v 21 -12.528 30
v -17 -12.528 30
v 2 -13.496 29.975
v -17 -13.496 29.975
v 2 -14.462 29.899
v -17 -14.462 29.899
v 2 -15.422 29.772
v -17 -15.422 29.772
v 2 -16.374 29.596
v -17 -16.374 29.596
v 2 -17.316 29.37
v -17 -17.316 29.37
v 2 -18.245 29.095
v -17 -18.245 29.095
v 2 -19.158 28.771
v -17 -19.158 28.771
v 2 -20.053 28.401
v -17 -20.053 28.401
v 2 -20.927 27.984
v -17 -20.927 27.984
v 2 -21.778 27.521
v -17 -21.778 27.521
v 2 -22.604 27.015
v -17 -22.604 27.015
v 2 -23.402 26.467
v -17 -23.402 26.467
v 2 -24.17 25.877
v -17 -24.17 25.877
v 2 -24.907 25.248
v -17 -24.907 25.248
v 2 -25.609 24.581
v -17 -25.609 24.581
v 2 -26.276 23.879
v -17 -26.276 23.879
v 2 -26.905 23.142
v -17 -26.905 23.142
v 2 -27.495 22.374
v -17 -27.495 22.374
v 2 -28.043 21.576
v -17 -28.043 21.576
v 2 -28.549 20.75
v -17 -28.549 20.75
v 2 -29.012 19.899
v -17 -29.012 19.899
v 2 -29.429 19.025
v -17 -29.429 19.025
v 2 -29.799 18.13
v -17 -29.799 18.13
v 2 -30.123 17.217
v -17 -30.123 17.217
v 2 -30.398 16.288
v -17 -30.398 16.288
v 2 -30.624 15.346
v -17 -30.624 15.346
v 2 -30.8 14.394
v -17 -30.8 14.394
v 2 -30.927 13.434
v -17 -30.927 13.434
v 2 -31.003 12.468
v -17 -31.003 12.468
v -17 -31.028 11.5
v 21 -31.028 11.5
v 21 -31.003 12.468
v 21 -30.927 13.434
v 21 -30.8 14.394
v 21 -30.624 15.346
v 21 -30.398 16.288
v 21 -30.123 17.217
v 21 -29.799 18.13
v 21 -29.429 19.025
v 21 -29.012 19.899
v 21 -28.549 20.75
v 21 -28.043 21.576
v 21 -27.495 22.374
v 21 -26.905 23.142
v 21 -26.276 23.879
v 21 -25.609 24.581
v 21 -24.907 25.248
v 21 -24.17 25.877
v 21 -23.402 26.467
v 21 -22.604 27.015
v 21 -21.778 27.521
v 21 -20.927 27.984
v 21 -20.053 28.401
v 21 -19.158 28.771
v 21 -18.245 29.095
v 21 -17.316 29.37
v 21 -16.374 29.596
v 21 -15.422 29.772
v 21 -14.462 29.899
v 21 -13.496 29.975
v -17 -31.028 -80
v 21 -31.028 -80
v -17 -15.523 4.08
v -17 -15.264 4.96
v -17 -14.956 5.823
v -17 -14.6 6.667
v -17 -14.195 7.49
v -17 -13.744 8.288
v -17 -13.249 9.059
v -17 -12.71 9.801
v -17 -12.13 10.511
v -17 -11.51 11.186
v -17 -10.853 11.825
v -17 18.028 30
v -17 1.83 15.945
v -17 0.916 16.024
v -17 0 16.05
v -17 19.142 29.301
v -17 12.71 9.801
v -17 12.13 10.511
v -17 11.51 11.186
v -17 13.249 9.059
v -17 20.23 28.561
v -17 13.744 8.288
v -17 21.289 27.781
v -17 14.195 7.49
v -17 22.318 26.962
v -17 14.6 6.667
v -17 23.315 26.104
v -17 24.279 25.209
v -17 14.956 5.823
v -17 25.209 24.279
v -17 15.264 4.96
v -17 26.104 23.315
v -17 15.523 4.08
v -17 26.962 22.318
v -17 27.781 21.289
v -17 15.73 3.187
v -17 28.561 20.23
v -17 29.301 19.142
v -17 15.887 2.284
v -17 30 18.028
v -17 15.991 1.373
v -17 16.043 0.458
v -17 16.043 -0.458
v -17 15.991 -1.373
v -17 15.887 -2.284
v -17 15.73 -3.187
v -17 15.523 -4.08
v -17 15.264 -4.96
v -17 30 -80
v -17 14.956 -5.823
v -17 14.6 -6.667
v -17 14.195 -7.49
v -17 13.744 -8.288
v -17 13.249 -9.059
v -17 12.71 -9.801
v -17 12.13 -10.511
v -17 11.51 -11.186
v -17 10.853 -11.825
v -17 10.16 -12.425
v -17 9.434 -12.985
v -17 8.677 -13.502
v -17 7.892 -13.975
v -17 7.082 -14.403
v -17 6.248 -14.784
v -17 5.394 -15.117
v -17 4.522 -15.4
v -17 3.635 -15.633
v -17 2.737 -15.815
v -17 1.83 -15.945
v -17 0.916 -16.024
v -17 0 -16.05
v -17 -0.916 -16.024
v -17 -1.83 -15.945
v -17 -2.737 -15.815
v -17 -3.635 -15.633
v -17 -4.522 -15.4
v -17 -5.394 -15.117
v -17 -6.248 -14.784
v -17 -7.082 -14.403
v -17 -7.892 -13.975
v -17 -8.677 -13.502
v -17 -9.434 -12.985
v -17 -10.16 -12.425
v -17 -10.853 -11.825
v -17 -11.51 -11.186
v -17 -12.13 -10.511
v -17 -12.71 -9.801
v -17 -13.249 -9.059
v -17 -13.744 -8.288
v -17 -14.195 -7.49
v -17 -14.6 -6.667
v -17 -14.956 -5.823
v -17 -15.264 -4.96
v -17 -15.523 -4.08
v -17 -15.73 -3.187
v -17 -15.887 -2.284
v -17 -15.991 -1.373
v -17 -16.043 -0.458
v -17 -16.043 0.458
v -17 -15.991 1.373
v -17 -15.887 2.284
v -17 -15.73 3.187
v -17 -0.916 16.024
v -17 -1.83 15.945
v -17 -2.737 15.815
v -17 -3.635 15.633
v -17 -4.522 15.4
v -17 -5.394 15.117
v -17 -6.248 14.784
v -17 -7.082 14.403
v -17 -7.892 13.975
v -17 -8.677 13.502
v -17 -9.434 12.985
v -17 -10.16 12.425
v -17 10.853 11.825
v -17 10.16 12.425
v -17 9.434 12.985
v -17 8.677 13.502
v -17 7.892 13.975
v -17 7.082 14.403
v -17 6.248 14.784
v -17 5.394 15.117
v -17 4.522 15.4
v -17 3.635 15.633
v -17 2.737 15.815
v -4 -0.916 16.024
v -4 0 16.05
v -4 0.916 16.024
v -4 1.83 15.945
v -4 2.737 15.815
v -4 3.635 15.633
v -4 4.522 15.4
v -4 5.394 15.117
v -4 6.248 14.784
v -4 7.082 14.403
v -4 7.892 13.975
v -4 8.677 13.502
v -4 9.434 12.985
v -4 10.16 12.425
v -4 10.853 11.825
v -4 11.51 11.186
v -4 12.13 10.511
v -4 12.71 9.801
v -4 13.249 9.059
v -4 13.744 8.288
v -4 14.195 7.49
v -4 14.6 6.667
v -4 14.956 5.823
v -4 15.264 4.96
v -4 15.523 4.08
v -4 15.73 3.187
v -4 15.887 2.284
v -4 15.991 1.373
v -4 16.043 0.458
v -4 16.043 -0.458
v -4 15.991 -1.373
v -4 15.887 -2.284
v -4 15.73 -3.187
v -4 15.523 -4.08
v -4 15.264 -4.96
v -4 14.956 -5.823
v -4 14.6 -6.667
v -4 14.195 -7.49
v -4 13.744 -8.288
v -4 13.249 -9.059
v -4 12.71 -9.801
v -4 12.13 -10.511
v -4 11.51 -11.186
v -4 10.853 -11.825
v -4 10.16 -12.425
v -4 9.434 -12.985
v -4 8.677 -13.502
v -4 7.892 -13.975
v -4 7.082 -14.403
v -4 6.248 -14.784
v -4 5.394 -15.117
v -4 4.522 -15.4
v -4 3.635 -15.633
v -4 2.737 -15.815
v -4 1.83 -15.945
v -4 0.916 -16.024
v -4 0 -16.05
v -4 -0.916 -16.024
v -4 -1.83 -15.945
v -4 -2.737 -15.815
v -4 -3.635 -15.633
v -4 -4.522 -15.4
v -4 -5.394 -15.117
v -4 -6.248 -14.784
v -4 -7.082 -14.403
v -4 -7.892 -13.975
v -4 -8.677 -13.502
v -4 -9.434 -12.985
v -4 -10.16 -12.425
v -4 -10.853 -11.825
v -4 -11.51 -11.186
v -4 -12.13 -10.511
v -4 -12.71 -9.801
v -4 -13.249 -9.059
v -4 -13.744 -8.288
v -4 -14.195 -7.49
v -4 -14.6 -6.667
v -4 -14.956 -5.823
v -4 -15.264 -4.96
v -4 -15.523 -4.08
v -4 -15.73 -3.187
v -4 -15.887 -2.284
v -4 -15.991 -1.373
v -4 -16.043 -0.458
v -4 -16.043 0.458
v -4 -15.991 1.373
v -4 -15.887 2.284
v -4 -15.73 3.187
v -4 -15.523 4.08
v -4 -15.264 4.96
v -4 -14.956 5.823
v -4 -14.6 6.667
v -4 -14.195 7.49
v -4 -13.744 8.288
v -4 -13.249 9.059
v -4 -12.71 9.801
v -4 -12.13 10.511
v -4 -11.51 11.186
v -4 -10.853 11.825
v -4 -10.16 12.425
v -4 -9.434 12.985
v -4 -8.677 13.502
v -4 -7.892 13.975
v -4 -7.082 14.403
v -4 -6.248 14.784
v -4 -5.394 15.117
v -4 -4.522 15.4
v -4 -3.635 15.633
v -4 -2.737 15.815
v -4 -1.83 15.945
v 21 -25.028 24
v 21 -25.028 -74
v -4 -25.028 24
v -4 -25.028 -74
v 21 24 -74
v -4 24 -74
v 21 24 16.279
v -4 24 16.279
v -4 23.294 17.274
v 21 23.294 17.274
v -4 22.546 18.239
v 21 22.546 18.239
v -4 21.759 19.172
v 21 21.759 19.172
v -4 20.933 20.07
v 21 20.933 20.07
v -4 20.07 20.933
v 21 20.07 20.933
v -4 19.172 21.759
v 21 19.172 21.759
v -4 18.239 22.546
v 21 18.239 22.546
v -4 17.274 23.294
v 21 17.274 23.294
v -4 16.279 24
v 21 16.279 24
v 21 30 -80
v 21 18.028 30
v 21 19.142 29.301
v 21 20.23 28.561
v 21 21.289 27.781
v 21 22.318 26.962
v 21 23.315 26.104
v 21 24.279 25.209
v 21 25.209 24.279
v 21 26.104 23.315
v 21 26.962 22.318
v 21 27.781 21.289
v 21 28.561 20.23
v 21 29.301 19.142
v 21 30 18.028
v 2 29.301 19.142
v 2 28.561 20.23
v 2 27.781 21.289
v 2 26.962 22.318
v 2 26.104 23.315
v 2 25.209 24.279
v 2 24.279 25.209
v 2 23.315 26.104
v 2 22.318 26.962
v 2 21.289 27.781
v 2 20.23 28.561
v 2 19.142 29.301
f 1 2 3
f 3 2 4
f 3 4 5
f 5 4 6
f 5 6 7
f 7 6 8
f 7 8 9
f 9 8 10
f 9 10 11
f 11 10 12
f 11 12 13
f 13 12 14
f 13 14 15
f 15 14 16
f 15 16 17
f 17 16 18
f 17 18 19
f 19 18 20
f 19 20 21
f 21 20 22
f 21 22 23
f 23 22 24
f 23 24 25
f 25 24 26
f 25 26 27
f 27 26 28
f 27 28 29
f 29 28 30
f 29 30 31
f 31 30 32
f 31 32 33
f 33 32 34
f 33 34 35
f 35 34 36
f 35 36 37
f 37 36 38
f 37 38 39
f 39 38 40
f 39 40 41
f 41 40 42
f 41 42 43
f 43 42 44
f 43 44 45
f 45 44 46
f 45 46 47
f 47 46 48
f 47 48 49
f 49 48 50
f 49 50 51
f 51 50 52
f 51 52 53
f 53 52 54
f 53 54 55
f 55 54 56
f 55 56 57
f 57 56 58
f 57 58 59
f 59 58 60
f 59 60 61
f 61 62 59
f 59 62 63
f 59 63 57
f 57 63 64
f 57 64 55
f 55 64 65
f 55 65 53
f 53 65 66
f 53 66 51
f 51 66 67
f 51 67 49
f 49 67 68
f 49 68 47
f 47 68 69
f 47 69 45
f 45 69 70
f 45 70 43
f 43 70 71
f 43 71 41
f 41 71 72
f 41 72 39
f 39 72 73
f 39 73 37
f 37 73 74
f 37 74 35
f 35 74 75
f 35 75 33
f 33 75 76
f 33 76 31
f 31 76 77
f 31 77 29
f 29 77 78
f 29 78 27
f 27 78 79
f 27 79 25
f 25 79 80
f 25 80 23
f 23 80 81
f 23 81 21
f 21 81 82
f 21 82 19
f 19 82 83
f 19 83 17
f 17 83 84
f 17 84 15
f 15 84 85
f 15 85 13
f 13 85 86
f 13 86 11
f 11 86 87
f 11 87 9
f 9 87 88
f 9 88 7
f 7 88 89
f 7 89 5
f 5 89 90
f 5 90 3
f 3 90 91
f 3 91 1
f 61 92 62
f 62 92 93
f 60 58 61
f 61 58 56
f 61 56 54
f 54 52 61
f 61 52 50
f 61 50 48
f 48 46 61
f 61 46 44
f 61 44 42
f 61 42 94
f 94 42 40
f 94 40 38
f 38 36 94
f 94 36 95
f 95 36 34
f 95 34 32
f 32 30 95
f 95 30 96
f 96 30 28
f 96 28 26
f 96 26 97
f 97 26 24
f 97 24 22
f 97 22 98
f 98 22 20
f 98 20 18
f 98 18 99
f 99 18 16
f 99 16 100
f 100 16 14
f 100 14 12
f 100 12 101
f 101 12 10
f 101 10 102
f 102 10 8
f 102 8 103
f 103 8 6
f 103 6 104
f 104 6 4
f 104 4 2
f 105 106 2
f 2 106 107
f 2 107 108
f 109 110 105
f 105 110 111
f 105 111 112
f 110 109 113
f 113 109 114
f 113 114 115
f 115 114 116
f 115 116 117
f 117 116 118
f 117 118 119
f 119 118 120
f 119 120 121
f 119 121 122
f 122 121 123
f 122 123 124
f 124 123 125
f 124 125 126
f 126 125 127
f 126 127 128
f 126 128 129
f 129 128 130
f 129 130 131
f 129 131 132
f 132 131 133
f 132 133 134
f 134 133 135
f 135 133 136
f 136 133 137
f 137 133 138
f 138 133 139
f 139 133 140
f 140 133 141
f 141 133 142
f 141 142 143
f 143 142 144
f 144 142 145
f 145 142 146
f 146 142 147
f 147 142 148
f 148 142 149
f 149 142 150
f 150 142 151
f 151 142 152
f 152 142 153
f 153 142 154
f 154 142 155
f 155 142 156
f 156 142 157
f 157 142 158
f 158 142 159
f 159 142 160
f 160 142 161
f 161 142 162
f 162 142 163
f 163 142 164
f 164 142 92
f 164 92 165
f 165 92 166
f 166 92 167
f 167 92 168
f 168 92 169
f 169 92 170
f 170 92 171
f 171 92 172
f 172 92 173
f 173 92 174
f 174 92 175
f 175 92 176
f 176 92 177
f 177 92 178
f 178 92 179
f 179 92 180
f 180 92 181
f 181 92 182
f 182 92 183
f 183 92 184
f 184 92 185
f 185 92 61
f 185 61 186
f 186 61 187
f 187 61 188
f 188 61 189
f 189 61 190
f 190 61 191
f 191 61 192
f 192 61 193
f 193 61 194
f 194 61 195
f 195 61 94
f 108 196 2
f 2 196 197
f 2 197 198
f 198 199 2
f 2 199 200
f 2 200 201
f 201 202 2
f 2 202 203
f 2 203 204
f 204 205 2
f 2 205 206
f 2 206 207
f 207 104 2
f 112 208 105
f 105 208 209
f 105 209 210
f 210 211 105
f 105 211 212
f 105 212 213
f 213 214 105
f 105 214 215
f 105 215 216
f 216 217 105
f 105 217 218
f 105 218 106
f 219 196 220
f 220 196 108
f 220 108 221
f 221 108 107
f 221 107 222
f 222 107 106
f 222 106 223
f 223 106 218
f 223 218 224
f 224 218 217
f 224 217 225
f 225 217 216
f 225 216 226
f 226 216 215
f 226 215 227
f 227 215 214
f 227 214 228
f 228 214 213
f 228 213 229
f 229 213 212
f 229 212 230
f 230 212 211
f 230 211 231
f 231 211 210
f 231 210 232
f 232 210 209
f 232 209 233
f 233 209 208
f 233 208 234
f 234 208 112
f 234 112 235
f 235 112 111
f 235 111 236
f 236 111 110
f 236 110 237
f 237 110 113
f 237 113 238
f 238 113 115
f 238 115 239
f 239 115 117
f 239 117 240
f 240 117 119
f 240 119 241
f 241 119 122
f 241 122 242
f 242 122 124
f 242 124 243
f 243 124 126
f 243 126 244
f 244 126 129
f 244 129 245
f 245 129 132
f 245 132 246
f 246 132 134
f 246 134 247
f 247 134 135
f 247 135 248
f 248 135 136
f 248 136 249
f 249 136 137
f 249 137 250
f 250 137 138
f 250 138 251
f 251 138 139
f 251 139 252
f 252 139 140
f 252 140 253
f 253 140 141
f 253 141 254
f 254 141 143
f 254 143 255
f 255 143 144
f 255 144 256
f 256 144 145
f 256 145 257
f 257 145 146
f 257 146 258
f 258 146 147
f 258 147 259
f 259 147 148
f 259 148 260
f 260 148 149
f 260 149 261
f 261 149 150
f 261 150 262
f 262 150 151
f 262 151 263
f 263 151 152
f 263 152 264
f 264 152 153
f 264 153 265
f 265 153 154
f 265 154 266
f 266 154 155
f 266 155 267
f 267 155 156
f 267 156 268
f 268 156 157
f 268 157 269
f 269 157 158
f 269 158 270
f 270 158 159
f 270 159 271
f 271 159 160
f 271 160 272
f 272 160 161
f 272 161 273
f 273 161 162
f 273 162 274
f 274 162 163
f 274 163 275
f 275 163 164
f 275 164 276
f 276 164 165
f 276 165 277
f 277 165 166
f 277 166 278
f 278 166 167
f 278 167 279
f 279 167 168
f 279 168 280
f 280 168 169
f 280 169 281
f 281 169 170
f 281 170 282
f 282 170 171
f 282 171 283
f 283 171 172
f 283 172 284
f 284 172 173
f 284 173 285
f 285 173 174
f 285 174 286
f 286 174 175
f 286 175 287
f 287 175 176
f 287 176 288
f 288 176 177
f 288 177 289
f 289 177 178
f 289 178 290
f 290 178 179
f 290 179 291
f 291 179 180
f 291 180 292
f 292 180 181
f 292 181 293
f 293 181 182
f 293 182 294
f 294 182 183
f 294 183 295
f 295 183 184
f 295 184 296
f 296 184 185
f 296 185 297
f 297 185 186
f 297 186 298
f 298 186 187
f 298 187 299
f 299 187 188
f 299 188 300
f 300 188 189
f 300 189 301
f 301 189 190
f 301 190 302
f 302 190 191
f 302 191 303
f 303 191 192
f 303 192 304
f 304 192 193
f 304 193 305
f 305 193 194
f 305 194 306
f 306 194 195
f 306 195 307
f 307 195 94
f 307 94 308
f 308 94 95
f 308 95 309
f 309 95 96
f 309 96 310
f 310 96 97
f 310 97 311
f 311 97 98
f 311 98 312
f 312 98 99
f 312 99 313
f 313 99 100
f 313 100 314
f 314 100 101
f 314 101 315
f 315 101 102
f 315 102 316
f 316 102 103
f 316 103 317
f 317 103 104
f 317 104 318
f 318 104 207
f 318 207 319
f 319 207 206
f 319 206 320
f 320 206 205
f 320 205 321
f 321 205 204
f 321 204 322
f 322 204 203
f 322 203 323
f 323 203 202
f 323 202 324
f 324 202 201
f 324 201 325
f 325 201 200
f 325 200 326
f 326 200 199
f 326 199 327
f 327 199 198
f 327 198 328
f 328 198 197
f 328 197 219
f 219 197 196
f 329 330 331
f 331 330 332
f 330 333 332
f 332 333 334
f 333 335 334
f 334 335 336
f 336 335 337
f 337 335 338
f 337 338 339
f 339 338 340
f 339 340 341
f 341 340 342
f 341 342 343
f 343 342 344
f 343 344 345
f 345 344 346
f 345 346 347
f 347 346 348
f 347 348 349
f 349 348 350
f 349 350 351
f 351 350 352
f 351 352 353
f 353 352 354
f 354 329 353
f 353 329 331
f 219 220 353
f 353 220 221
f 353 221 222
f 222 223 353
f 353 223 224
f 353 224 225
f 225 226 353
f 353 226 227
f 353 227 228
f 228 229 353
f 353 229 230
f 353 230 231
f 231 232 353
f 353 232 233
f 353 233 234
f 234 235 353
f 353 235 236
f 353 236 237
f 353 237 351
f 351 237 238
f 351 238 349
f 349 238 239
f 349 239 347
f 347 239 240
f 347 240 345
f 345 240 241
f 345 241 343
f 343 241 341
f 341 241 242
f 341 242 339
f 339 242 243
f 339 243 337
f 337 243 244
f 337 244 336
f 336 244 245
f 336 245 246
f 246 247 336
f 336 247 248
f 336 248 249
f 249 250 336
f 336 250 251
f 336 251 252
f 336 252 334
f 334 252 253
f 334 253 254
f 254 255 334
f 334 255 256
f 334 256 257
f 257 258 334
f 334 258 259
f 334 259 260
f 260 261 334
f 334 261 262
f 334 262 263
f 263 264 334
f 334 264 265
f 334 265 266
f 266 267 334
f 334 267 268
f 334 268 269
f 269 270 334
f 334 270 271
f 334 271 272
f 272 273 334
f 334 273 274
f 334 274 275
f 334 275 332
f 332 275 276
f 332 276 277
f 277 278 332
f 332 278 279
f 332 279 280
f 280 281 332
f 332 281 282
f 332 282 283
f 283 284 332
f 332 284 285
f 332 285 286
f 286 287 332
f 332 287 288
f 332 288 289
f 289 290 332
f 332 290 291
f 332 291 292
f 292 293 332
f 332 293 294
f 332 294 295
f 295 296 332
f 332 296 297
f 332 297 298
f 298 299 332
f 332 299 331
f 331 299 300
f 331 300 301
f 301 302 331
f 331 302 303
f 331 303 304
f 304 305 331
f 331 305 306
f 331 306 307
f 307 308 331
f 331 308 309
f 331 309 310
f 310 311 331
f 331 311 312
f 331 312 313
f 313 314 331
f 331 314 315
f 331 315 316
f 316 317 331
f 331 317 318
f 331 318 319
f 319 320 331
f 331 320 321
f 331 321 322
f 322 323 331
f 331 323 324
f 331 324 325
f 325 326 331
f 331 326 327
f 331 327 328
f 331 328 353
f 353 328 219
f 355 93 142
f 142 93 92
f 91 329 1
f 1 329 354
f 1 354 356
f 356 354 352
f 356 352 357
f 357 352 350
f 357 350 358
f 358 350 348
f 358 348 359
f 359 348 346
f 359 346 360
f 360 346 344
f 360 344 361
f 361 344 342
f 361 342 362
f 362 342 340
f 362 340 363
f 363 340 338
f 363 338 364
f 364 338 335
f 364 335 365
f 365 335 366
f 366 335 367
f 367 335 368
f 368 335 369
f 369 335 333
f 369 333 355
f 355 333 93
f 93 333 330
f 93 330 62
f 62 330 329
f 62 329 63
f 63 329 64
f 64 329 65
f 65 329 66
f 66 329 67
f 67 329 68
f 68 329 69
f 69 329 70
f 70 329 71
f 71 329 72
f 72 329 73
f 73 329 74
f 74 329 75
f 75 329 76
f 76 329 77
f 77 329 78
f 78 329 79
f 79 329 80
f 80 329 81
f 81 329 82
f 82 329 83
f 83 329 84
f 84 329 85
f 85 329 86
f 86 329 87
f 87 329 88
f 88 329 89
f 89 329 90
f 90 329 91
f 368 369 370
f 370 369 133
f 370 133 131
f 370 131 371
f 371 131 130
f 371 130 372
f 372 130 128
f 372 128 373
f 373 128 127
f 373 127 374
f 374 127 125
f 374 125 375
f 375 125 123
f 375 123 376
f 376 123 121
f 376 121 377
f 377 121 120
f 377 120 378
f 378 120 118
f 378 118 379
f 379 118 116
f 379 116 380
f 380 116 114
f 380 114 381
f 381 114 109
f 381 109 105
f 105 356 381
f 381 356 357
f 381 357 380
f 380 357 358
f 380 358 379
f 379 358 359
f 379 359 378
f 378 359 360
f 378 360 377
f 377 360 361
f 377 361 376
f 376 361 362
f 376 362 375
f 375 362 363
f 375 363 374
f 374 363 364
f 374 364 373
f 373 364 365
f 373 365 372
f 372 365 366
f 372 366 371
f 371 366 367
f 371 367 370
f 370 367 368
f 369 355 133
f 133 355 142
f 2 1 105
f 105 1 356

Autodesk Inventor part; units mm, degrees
ref_plane "YZ Plane" through (0, 0, 0) normal (1, 0, 0) x (0, 1, 0)
ref_plane "XZ Plane" through (0, 0, 0) normal (0, 1, 0) x (-1, 0, 0)
ref_plane "Work Plane1" through (-5, 30, -18.0278) normal (1, 0, 0) x (0, 0, 1)
sketch "Sketch2" plane through (-5, 30, -18.0278) normal (1, 0, 0) x (0, 0, 1)
  arc A0 (36.0555, 0) -> (48.0278, 11.9722) centre (18.0278, 30) ccw projected
  line L0 (48.0278, 11.9722) -> (48.0278, 48.0278) projected
  arc A1 (36.0555, 0) -> (48.0278, 11.9722) centre (18.0278, 30) ccw
  line L1 (48.0278, 48.0278) -> (48.0278, 11.9722)
  arc A2 (48.0278, 48.0278) -> (36.0555, 60) centre (18.0278, 30) ccw projected
  line L2 (48.0278, 48.0278) -> (48.0278, 60)
  line L3 (48.0278, 60) -> (-61.9722, 60)
  line L4 (-61.9722, 60) -> (-61.9722, 0)
  line L5 (0, 0) -> (36.0555, 0) projected
  line L6 (-61.9722, 0) -> (0, 0)
  line L7 (0, 0) -> (36.0555, 0)
extrude "Extrusion1" add sketch "Sketch2" along normal blind 26 and the other way blind 2
sketch "Sketch4" plane through (-7, -30, -80) normal (0, -1, 0) x (1, 0, 0)
  line L0 (28, 110) -> (28, 0) projected
  line L1 (0, 0) -> (0, 110) projected
  line L2 (28, 110) -> (0, 110)
  line L3 (0, 110) -> (0, 0)
  line L4 (0, 0) -> (28, 0)
  line L5 (28, 0) -> (28, 110)
  point P0 (7, 80)
extrude "Extrusion3" add sketch "Sketch4" along normal blind 1.028
sketch "Sketch5" plane through (21, 30, -18.0278) normal (1, 0, 0) x (0, 0, -1)
  arc A0 (-36.0555, 0) -> (-48.0278, -11.9722) centre (-18.0278, -30) ccw projected
  line L0 (-48.0278, -11.9722) -> (-48.0278, -61.028) projected
  line L1 (-48.0278, -11.9722) -> (-48.0278, -61.028)
  line L2 (61.9722, 0) -> (61.9722, -61.028) projected
  line L3 (-48.0278, -61.028) -> (61.9722, -61.028)
  line L4 (61.9722, -61.028) -> (61.9722, 0)
  line L5 (-36.0555, 0) -> (61.9722, 0) projected
  line L6 (61.9722, 0) -> (-36.0555, 0)
  arc A1 (-36.0555, 0) -> (-48.0278, -11.9722) centre (-18.0278, -30) ccw
  line L7 (55.9722, -55.028) -> (-42.0278, -55.028)
  line L8 (-42.0278, -55.028) -> (-42.0278, -13.7212)
  arc A2 (-34.3066, -6) -> (-42.0278, -13.7212) centre (-18.0278, -30) ccw
  line L9 (-34.3066, -6) -> (55.9722, -6)
  line L10 (55.9722, -6) -> (55.9722, -55.028)
  dimension "d11" = 6
extrude "Extrusion4" cut sketch "Sketch5" against normal blind 25 contours L7 L8 A2 L9 L10
sketch "Sketch6" plane through (-7, 30, -80) normal (-1, 0, 0) x (0, 0, 1)
  line L0 (0, 0) -> (98.0278, 0) projected
  line L1 (0, 0) -> (98.0278, 0)
  line L2 (0, -61.028) -> (110, -61.028) projected
  line L3 (110, -11.9722) -> (110, -61.028)
  line L4 (110, -61.028) -> (0, -61.028)
  line L5 (0, 0) -> (0, -61.028) projected
  line L6 (0, -61.028) -> (0, 0)
  line L7 (110, -11.9722) -> (110, -61.028) projected
  arc A0 (110, -11.9722) -> (98.0278, 0) centre (80, -30) ccw
  point P0 (80, -30)
extrude "Extrusion5" add sketch "Sketch6" along normal blind 10
sketch "Sketch7" plane through (-17, 30, -80) normal (-1, 0, 0) x (0, 0, 1)
  circle A0 centre (80, -30) radius 16.05
  dimension "d16" = 32.1
extrude "Extrusion6" cut sketch "Sketch7" against normal blind 13
fillet "Fillet1" radius 18.5 1 edges at (2, -31.028, 30)
properties part number "Tilt_Lid"
